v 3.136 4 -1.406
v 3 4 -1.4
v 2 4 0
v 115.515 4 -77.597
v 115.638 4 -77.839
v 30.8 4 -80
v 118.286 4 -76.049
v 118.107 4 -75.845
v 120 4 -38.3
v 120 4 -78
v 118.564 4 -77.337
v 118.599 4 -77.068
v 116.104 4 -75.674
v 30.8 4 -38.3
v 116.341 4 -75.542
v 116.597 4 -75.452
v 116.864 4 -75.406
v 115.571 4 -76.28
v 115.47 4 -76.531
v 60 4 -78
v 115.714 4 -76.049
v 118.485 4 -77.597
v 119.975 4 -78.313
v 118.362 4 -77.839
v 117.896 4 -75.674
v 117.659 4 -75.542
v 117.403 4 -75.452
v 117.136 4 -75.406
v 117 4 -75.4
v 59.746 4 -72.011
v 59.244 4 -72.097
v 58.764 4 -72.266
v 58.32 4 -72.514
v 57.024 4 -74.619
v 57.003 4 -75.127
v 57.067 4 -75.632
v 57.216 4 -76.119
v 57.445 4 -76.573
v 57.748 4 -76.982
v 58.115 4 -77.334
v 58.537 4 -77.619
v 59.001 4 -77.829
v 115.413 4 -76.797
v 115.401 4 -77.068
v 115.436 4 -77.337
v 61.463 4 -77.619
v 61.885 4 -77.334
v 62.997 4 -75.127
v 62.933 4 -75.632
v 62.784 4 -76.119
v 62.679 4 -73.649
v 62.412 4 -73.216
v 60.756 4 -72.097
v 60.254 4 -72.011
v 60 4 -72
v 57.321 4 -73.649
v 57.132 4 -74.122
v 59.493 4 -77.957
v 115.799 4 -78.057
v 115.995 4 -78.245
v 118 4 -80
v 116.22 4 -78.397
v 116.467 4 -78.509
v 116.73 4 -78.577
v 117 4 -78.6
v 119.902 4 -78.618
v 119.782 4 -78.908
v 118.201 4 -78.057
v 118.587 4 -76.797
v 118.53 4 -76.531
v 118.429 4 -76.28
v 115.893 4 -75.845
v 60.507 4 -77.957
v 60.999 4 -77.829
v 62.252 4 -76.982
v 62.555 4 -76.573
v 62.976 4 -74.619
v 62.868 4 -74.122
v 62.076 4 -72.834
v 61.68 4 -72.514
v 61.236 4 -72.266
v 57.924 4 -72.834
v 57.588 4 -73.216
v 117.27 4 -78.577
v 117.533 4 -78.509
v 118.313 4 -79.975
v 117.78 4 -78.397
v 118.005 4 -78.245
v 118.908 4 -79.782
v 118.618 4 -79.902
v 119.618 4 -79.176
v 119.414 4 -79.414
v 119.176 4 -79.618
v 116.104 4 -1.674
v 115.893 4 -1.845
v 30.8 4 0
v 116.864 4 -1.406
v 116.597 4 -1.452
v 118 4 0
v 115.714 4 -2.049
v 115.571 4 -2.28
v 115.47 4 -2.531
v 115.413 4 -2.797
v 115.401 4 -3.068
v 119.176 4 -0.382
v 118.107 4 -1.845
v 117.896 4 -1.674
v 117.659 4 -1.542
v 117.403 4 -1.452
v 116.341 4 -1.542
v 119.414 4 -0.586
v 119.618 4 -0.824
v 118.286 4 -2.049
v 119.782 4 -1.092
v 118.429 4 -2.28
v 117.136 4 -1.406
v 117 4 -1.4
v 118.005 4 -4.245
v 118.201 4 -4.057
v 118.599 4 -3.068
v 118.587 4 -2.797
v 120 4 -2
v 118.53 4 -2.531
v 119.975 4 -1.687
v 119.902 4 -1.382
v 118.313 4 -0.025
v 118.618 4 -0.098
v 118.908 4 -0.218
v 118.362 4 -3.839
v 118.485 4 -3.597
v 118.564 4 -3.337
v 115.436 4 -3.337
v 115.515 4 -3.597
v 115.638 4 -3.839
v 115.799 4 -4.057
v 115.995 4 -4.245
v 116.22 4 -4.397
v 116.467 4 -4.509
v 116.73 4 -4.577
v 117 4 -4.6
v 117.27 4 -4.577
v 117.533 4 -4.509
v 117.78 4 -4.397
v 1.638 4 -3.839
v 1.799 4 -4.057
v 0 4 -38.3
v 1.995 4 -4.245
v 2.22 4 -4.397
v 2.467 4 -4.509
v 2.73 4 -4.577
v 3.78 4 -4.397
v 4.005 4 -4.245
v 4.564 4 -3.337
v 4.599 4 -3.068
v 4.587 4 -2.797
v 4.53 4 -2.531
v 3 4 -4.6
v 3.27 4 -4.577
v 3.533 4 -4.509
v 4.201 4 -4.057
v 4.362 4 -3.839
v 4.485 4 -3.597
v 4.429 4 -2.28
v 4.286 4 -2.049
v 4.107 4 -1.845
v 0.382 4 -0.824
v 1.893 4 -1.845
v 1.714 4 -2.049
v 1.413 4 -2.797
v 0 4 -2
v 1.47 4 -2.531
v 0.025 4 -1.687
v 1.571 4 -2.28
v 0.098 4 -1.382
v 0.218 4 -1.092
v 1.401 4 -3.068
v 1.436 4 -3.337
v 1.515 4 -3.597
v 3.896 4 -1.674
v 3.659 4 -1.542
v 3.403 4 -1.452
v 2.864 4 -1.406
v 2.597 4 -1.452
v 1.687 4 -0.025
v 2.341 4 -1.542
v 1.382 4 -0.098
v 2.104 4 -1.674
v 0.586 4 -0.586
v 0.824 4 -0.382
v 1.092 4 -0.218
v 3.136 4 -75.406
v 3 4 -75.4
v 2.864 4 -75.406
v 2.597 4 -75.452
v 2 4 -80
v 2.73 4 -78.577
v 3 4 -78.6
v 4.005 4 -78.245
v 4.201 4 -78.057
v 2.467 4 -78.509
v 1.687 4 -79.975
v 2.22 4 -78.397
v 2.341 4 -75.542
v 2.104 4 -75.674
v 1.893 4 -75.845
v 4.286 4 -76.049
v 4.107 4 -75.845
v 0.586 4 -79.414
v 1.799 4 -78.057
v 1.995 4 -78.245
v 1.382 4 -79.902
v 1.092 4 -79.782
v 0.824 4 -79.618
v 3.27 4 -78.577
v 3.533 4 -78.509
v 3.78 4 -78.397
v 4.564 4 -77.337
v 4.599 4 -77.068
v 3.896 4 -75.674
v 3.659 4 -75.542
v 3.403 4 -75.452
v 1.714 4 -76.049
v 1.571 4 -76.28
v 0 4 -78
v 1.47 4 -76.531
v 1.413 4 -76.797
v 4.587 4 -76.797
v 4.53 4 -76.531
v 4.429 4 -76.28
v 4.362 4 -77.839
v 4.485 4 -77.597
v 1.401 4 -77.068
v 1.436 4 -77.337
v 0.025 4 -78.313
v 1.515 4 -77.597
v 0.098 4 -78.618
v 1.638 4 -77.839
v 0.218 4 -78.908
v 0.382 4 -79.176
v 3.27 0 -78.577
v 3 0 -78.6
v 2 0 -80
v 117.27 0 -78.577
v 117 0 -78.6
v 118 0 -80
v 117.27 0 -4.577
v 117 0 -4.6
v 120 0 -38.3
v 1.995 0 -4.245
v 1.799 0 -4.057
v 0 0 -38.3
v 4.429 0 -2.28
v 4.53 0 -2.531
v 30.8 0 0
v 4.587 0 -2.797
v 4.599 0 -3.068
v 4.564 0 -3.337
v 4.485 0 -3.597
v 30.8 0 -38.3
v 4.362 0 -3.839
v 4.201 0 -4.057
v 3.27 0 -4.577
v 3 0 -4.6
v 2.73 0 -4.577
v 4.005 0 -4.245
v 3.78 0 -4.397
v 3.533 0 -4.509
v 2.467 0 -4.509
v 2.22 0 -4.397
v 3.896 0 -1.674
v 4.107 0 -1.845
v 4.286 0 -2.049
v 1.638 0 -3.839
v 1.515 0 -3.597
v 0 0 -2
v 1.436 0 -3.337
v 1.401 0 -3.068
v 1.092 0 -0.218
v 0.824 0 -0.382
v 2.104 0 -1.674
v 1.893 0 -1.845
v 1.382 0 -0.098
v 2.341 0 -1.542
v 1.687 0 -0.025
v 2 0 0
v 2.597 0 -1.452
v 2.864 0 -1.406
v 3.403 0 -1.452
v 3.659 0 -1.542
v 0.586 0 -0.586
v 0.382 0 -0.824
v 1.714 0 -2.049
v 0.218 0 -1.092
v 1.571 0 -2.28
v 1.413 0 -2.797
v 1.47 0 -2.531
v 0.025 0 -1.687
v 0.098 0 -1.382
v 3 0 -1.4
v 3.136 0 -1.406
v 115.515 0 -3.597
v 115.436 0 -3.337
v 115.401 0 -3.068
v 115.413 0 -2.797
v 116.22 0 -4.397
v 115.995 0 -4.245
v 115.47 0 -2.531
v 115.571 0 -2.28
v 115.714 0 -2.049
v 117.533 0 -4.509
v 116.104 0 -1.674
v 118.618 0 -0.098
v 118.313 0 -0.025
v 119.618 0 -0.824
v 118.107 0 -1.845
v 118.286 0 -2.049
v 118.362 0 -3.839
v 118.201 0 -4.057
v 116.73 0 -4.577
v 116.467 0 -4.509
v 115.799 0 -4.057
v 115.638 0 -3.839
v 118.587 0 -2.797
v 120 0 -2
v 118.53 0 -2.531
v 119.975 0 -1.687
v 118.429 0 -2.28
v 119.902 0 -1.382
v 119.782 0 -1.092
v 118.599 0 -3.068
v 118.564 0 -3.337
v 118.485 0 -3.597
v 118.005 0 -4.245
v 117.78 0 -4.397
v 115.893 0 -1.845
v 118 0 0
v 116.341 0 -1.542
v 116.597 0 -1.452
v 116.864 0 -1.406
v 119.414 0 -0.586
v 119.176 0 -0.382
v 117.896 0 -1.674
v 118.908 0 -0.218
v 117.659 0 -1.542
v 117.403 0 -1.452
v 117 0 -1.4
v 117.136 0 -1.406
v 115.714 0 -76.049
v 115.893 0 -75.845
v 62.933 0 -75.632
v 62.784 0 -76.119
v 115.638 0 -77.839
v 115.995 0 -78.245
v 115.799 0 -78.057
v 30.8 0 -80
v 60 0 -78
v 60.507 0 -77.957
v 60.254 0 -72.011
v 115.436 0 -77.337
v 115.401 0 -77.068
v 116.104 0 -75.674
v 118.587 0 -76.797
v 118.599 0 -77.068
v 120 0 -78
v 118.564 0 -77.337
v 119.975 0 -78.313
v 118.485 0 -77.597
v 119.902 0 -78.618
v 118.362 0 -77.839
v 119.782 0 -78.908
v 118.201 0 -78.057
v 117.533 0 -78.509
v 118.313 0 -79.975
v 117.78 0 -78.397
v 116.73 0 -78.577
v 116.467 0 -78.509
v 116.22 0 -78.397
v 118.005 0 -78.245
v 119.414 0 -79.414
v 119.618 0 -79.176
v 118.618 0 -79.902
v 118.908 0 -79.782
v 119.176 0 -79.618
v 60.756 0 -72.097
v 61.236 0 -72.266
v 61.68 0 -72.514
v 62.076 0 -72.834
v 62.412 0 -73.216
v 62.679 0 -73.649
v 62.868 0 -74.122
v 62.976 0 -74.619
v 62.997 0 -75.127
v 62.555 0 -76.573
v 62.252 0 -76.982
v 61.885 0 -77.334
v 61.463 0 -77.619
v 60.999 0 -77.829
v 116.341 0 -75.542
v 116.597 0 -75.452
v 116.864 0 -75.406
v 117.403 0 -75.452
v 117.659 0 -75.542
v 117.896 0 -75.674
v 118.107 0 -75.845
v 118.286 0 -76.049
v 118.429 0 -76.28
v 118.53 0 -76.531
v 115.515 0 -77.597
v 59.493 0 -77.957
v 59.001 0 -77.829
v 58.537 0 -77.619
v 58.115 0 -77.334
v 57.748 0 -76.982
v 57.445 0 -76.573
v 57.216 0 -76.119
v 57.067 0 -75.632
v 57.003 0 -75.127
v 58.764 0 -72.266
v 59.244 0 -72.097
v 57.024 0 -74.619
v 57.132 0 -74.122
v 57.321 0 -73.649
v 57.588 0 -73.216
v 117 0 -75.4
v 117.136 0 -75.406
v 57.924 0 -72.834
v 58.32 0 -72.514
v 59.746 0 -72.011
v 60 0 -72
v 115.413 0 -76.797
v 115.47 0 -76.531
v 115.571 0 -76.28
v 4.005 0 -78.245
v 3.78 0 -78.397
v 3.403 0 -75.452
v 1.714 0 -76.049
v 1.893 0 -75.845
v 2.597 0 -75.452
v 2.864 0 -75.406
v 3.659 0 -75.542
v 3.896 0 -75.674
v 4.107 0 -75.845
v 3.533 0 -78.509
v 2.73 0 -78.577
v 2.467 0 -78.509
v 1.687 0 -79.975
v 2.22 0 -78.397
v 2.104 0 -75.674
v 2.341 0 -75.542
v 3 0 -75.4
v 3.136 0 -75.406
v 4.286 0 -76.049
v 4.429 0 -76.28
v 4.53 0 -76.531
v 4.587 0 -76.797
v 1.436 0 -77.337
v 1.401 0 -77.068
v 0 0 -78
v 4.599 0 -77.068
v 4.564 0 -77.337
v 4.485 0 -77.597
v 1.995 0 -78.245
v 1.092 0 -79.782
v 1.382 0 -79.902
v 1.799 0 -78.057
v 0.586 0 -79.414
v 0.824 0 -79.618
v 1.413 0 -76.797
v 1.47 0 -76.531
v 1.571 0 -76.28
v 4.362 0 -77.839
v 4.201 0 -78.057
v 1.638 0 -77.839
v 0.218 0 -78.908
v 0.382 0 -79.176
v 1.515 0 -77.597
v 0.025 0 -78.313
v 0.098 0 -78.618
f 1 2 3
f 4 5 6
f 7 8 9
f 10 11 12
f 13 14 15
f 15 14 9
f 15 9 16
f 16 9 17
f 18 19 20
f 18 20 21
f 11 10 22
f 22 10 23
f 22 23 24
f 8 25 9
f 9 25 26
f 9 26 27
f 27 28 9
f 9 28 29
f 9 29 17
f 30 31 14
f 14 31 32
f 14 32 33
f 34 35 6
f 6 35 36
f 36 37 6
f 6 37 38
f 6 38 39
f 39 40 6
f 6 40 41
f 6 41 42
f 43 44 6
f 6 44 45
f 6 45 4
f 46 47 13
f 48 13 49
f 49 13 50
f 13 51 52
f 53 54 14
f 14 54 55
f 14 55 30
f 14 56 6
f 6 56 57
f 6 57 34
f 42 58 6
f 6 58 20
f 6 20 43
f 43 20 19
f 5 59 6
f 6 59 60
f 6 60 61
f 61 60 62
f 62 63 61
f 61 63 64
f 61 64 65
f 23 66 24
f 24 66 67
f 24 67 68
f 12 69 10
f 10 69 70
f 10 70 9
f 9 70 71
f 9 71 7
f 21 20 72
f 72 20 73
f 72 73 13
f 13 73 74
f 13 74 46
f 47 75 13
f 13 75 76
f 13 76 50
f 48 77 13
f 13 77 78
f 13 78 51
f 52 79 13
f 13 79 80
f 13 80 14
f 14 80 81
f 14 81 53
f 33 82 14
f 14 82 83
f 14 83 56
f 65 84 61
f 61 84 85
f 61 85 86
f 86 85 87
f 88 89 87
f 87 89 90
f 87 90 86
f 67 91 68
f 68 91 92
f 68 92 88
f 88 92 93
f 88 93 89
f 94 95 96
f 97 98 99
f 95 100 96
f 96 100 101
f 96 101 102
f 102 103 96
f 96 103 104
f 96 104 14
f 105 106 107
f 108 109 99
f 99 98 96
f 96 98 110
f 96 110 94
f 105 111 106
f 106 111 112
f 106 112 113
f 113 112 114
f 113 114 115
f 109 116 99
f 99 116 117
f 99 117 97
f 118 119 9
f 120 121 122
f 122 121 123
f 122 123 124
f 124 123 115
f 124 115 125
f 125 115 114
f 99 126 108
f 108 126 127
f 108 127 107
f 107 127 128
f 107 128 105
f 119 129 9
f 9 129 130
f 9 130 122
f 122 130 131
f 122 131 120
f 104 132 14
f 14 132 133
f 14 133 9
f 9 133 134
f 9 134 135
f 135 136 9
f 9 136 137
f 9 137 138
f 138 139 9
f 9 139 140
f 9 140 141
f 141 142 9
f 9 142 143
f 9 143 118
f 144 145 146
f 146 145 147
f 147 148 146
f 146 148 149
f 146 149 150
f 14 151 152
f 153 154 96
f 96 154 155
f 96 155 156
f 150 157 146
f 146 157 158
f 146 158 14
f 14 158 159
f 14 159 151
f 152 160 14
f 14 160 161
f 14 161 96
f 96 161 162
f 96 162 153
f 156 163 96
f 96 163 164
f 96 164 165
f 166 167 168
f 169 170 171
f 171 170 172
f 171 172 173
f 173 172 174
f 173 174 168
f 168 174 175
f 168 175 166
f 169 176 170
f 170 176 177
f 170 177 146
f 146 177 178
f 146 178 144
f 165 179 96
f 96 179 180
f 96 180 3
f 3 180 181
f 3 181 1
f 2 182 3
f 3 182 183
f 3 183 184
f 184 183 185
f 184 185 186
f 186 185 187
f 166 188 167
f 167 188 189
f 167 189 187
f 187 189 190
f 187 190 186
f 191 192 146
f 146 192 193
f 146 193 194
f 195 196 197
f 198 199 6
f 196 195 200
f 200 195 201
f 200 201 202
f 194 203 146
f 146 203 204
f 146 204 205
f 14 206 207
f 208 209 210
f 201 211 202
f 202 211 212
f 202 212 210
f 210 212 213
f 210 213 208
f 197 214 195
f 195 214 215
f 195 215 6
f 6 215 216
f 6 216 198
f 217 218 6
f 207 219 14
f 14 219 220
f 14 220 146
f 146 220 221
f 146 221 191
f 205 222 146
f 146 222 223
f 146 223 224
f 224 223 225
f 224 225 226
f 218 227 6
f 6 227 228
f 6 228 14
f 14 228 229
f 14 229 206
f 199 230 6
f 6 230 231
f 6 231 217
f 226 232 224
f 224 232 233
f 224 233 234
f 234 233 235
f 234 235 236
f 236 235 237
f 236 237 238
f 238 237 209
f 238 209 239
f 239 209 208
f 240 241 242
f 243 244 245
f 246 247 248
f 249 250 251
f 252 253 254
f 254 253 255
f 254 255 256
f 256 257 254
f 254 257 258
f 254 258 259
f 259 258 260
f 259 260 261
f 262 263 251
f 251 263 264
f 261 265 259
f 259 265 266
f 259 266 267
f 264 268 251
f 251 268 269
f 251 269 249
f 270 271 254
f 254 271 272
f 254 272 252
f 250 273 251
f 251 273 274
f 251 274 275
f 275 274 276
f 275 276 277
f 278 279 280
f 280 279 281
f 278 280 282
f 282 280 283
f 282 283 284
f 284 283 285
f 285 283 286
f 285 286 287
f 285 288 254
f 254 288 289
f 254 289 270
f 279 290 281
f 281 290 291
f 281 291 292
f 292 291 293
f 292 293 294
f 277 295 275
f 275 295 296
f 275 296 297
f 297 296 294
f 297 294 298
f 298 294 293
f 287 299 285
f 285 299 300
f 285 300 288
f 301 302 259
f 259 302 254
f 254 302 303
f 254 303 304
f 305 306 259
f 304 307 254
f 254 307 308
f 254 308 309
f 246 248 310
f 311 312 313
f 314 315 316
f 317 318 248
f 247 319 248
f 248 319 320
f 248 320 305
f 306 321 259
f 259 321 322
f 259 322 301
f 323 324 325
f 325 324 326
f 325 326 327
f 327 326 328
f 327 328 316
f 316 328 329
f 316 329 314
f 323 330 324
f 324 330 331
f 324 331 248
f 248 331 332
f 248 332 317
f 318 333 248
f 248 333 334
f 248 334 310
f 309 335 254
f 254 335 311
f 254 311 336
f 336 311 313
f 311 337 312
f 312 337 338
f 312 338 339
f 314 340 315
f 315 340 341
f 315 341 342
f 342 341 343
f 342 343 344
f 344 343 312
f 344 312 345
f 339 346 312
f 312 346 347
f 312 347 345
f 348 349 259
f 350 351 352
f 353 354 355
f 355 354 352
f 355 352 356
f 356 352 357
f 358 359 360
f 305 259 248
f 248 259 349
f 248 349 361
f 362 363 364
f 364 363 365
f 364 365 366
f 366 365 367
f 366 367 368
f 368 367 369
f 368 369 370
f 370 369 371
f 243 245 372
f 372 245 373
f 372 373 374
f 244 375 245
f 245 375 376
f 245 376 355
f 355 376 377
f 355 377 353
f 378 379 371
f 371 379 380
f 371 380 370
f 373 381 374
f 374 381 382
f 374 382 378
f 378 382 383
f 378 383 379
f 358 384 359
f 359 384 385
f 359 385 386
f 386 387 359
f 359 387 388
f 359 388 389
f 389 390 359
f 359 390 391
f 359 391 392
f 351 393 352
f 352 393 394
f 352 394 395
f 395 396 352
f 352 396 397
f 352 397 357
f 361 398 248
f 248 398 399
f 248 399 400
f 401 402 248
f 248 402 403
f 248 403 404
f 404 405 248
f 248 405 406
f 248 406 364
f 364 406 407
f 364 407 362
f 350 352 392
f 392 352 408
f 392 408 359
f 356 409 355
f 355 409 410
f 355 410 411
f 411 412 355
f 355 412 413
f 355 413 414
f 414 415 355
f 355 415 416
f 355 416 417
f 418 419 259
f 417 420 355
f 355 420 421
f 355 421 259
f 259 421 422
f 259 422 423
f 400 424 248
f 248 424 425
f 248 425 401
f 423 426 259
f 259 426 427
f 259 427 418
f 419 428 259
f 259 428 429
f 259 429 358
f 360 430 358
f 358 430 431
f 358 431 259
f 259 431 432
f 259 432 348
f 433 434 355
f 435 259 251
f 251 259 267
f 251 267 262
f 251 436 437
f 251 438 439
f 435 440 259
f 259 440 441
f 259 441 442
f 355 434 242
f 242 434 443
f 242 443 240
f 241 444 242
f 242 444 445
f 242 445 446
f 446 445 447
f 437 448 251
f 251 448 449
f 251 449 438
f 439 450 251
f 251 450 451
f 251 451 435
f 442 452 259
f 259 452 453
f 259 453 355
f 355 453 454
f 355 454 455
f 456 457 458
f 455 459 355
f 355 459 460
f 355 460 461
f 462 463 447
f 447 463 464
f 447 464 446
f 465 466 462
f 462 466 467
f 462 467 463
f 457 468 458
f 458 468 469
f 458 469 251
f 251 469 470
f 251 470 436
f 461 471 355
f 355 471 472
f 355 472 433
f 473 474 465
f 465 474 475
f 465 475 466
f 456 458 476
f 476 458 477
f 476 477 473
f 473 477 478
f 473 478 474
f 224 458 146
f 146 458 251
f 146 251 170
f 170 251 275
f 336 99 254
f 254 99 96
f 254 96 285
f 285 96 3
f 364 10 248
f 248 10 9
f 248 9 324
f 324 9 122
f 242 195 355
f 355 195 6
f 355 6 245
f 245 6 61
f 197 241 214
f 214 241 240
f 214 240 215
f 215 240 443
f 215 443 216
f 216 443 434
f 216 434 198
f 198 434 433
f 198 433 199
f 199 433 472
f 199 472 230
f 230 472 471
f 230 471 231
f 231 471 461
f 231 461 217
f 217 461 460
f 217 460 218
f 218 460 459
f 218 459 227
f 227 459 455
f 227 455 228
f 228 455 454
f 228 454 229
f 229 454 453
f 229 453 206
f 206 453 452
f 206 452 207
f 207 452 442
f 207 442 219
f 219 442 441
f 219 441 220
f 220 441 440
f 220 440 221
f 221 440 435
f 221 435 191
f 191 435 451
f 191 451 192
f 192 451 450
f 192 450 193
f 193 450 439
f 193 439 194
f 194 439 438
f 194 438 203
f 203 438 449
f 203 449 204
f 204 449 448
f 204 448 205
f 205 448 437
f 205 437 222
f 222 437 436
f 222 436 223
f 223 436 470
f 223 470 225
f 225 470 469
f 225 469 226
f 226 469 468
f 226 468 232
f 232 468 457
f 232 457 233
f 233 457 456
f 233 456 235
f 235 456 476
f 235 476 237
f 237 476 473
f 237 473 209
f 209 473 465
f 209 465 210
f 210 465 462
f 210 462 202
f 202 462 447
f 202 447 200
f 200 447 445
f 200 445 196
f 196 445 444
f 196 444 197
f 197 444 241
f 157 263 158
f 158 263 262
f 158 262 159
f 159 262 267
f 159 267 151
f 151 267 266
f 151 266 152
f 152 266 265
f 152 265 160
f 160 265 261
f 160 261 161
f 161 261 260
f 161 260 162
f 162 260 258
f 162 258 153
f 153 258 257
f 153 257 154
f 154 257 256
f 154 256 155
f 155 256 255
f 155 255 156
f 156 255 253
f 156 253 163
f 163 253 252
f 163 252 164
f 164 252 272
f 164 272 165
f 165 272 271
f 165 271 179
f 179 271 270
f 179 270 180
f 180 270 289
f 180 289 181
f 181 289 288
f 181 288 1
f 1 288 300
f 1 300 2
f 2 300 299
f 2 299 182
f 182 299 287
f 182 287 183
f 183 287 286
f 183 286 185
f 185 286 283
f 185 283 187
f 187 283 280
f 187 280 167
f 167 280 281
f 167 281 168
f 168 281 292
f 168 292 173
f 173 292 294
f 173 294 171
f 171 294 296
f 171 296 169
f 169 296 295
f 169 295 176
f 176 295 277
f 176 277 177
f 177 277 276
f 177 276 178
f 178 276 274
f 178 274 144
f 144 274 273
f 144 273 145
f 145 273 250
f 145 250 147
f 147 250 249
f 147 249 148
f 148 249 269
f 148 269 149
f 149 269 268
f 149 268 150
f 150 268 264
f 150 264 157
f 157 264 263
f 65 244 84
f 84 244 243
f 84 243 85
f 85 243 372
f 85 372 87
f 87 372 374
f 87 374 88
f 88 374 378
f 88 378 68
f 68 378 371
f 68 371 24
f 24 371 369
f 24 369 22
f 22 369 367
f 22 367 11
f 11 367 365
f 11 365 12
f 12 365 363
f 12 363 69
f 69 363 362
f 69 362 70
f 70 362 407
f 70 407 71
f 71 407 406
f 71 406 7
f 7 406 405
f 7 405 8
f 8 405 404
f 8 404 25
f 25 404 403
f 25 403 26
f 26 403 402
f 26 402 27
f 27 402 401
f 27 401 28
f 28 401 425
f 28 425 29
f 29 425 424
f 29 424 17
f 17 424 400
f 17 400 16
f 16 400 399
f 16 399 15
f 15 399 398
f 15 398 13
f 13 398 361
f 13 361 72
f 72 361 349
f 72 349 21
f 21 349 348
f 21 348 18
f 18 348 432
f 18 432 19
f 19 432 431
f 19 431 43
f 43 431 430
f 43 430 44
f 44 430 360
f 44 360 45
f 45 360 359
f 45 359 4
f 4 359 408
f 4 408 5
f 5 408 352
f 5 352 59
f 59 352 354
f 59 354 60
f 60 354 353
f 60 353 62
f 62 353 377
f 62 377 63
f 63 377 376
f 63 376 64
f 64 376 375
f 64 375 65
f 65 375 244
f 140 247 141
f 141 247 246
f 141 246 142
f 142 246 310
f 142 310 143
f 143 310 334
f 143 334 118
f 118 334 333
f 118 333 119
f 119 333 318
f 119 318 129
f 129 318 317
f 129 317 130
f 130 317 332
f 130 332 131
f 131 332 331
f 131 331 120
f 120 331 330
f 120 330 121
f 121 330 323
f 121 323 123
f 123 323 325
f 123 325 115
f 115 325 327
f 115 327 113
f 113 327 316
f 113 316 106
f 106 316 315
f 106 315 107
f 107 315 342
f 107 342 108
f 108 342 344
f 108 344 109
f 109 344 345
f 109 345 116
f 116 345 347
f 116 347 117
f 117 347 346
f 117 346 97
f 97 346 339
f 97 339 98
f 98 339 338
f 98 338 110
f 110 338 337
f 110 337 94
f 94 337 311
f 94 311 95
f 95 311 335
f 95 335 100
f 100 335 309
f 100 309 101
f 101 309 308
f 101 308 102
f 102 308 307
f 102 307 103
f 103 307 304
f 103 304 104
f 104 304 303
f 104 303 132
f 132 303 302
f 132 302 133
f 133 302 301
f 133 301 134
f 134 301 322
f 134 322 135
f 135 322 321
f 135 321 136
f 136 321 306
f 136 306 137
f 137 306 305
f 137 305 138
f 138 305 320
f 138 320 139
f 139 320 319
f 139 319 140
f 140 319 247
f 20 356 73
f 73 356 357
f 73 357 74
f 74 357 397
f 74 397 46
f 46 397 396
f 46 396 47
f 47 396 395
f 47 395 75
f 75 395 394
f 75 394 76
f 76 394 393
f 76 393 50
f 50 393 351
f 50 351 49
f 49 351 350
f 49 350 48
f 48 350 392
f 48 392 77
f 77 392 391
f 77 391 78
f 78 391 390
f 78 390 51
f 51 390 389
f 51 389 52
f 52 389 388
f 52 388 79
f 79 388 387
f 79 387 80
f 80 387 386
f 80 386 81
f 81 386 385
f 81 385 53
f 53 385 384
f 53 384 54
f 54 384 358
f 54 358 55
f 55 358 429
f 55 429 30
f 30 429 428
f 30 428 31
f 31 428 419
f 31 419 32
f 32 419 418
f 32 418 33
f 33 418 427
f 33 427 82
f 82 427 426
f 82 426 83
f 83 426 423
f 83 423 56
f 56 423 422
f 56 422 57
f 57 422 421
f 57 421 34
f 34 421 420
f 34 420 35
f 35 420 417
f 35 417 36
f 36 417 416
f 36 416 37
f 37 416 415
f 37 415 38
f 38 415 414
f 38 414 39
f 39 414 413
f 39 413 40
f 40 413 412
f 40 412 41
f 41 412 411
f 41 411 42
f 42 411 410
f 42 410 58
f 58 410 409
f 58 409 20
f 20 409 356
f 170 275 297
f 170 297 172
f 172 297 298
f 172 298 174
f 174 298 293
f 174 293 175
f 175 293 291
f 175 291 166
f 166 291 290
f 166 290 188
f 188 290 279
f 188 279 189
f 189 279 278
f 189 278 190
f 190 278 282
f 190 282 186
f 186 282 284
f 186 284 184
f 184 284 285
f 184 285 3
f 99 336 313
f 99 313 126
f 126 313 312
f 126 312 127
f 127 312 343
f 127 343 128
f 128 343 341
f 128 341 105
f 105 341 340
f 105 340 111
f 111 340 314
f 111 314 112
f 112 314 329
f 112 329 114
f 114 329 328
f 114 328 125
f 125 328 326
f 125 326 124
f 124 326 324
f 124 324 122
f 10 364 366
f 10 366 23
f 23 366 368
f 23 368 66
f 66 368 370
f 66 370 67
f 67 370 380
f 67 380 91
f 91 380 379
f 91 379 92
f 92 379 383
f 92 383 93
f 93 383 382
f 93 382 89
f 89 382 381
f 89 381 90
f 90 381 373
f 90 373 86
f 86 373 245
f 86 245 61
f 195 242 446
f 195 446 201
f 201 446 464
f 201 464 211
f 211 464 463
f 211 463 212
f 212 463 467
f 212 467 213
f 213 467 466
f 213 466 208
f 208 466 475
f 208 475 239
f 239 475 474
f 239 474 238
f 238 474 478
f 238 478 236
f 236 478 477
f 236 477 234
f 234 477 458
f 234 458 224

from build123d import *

# Parameters (mm, degrees)
SKETCH1_W           = 120
SKETCH1_H           = 80
SKETCH1_R           = 1.6
SKETCH1_R_2         = 3
BOSS_EXTRUDE1_DEPTH = 4
FILLET1_R           = 2
FILLET2_R           = 2
FILLET3_R           = 2
FILLET4_R           = 2


with BuildPart() as part:
    # Sketch1 → Boss-Extrude1 (new body)
    with BuildSketch(Plane(origin=(0, 0, 0), x_dir=(1, 0, 0), z_dir=(0, 1, 0))):
        with Locations((60, 40)):
            Rectangle(SKETCH1_W, SKETCH1_H)
        with Locations((3, 77)):
            Circle(SKETCH1_R, mode=Mode.SUBTRACT)
        with Locations((3, 3)):
            Circle(SKETCH1_R, mode=Mode.SUBTRACT)
        with Locations((117, 77)):
            Circle(SKETCH1_R, mode=Mode.SUBTRACT)
        with Locations((117, 3)):
            Circle(SKETCH1_R, mode=Mode.SUBTRACT)
        with Locations((60, 75)):
            Circle(SKETCH1_R_2, mode=Mode.SUBTRACT)
    extrude(amount=BOSS_EXTRUDE1_DEPTH)

    # Fillet1
    fillet1_edges = [part.edges().sort_by_distance(p)[0] for p in [
        (0, 2, 0),
    ]]
    fillet(fillet1_edges, radius=FILLET1_R)

    # Fillet2
    fillet2_edges = [part.edges().sort_by_distance(p)[0] for p in [
        (120, 2, 0),
    ]]
    fillet(fillet2_edges, radius=FILLET2_R)

    # Fillet3
    fillet3_edges = [part.edges().sort_by_distance(p)[0] for p in [
        (120, 2, -80),
    ]]
    fillet(fillet3_edges, radius=FILLET3_R)

    # Fillet4
    fillet4_edges = [part.edges().sort_by_distance(p)[0] for p in [
        (0, 2, -80),
    ]]
    fillet(fillet4_edges, radius=FILLET4_R)


solid = part.part
